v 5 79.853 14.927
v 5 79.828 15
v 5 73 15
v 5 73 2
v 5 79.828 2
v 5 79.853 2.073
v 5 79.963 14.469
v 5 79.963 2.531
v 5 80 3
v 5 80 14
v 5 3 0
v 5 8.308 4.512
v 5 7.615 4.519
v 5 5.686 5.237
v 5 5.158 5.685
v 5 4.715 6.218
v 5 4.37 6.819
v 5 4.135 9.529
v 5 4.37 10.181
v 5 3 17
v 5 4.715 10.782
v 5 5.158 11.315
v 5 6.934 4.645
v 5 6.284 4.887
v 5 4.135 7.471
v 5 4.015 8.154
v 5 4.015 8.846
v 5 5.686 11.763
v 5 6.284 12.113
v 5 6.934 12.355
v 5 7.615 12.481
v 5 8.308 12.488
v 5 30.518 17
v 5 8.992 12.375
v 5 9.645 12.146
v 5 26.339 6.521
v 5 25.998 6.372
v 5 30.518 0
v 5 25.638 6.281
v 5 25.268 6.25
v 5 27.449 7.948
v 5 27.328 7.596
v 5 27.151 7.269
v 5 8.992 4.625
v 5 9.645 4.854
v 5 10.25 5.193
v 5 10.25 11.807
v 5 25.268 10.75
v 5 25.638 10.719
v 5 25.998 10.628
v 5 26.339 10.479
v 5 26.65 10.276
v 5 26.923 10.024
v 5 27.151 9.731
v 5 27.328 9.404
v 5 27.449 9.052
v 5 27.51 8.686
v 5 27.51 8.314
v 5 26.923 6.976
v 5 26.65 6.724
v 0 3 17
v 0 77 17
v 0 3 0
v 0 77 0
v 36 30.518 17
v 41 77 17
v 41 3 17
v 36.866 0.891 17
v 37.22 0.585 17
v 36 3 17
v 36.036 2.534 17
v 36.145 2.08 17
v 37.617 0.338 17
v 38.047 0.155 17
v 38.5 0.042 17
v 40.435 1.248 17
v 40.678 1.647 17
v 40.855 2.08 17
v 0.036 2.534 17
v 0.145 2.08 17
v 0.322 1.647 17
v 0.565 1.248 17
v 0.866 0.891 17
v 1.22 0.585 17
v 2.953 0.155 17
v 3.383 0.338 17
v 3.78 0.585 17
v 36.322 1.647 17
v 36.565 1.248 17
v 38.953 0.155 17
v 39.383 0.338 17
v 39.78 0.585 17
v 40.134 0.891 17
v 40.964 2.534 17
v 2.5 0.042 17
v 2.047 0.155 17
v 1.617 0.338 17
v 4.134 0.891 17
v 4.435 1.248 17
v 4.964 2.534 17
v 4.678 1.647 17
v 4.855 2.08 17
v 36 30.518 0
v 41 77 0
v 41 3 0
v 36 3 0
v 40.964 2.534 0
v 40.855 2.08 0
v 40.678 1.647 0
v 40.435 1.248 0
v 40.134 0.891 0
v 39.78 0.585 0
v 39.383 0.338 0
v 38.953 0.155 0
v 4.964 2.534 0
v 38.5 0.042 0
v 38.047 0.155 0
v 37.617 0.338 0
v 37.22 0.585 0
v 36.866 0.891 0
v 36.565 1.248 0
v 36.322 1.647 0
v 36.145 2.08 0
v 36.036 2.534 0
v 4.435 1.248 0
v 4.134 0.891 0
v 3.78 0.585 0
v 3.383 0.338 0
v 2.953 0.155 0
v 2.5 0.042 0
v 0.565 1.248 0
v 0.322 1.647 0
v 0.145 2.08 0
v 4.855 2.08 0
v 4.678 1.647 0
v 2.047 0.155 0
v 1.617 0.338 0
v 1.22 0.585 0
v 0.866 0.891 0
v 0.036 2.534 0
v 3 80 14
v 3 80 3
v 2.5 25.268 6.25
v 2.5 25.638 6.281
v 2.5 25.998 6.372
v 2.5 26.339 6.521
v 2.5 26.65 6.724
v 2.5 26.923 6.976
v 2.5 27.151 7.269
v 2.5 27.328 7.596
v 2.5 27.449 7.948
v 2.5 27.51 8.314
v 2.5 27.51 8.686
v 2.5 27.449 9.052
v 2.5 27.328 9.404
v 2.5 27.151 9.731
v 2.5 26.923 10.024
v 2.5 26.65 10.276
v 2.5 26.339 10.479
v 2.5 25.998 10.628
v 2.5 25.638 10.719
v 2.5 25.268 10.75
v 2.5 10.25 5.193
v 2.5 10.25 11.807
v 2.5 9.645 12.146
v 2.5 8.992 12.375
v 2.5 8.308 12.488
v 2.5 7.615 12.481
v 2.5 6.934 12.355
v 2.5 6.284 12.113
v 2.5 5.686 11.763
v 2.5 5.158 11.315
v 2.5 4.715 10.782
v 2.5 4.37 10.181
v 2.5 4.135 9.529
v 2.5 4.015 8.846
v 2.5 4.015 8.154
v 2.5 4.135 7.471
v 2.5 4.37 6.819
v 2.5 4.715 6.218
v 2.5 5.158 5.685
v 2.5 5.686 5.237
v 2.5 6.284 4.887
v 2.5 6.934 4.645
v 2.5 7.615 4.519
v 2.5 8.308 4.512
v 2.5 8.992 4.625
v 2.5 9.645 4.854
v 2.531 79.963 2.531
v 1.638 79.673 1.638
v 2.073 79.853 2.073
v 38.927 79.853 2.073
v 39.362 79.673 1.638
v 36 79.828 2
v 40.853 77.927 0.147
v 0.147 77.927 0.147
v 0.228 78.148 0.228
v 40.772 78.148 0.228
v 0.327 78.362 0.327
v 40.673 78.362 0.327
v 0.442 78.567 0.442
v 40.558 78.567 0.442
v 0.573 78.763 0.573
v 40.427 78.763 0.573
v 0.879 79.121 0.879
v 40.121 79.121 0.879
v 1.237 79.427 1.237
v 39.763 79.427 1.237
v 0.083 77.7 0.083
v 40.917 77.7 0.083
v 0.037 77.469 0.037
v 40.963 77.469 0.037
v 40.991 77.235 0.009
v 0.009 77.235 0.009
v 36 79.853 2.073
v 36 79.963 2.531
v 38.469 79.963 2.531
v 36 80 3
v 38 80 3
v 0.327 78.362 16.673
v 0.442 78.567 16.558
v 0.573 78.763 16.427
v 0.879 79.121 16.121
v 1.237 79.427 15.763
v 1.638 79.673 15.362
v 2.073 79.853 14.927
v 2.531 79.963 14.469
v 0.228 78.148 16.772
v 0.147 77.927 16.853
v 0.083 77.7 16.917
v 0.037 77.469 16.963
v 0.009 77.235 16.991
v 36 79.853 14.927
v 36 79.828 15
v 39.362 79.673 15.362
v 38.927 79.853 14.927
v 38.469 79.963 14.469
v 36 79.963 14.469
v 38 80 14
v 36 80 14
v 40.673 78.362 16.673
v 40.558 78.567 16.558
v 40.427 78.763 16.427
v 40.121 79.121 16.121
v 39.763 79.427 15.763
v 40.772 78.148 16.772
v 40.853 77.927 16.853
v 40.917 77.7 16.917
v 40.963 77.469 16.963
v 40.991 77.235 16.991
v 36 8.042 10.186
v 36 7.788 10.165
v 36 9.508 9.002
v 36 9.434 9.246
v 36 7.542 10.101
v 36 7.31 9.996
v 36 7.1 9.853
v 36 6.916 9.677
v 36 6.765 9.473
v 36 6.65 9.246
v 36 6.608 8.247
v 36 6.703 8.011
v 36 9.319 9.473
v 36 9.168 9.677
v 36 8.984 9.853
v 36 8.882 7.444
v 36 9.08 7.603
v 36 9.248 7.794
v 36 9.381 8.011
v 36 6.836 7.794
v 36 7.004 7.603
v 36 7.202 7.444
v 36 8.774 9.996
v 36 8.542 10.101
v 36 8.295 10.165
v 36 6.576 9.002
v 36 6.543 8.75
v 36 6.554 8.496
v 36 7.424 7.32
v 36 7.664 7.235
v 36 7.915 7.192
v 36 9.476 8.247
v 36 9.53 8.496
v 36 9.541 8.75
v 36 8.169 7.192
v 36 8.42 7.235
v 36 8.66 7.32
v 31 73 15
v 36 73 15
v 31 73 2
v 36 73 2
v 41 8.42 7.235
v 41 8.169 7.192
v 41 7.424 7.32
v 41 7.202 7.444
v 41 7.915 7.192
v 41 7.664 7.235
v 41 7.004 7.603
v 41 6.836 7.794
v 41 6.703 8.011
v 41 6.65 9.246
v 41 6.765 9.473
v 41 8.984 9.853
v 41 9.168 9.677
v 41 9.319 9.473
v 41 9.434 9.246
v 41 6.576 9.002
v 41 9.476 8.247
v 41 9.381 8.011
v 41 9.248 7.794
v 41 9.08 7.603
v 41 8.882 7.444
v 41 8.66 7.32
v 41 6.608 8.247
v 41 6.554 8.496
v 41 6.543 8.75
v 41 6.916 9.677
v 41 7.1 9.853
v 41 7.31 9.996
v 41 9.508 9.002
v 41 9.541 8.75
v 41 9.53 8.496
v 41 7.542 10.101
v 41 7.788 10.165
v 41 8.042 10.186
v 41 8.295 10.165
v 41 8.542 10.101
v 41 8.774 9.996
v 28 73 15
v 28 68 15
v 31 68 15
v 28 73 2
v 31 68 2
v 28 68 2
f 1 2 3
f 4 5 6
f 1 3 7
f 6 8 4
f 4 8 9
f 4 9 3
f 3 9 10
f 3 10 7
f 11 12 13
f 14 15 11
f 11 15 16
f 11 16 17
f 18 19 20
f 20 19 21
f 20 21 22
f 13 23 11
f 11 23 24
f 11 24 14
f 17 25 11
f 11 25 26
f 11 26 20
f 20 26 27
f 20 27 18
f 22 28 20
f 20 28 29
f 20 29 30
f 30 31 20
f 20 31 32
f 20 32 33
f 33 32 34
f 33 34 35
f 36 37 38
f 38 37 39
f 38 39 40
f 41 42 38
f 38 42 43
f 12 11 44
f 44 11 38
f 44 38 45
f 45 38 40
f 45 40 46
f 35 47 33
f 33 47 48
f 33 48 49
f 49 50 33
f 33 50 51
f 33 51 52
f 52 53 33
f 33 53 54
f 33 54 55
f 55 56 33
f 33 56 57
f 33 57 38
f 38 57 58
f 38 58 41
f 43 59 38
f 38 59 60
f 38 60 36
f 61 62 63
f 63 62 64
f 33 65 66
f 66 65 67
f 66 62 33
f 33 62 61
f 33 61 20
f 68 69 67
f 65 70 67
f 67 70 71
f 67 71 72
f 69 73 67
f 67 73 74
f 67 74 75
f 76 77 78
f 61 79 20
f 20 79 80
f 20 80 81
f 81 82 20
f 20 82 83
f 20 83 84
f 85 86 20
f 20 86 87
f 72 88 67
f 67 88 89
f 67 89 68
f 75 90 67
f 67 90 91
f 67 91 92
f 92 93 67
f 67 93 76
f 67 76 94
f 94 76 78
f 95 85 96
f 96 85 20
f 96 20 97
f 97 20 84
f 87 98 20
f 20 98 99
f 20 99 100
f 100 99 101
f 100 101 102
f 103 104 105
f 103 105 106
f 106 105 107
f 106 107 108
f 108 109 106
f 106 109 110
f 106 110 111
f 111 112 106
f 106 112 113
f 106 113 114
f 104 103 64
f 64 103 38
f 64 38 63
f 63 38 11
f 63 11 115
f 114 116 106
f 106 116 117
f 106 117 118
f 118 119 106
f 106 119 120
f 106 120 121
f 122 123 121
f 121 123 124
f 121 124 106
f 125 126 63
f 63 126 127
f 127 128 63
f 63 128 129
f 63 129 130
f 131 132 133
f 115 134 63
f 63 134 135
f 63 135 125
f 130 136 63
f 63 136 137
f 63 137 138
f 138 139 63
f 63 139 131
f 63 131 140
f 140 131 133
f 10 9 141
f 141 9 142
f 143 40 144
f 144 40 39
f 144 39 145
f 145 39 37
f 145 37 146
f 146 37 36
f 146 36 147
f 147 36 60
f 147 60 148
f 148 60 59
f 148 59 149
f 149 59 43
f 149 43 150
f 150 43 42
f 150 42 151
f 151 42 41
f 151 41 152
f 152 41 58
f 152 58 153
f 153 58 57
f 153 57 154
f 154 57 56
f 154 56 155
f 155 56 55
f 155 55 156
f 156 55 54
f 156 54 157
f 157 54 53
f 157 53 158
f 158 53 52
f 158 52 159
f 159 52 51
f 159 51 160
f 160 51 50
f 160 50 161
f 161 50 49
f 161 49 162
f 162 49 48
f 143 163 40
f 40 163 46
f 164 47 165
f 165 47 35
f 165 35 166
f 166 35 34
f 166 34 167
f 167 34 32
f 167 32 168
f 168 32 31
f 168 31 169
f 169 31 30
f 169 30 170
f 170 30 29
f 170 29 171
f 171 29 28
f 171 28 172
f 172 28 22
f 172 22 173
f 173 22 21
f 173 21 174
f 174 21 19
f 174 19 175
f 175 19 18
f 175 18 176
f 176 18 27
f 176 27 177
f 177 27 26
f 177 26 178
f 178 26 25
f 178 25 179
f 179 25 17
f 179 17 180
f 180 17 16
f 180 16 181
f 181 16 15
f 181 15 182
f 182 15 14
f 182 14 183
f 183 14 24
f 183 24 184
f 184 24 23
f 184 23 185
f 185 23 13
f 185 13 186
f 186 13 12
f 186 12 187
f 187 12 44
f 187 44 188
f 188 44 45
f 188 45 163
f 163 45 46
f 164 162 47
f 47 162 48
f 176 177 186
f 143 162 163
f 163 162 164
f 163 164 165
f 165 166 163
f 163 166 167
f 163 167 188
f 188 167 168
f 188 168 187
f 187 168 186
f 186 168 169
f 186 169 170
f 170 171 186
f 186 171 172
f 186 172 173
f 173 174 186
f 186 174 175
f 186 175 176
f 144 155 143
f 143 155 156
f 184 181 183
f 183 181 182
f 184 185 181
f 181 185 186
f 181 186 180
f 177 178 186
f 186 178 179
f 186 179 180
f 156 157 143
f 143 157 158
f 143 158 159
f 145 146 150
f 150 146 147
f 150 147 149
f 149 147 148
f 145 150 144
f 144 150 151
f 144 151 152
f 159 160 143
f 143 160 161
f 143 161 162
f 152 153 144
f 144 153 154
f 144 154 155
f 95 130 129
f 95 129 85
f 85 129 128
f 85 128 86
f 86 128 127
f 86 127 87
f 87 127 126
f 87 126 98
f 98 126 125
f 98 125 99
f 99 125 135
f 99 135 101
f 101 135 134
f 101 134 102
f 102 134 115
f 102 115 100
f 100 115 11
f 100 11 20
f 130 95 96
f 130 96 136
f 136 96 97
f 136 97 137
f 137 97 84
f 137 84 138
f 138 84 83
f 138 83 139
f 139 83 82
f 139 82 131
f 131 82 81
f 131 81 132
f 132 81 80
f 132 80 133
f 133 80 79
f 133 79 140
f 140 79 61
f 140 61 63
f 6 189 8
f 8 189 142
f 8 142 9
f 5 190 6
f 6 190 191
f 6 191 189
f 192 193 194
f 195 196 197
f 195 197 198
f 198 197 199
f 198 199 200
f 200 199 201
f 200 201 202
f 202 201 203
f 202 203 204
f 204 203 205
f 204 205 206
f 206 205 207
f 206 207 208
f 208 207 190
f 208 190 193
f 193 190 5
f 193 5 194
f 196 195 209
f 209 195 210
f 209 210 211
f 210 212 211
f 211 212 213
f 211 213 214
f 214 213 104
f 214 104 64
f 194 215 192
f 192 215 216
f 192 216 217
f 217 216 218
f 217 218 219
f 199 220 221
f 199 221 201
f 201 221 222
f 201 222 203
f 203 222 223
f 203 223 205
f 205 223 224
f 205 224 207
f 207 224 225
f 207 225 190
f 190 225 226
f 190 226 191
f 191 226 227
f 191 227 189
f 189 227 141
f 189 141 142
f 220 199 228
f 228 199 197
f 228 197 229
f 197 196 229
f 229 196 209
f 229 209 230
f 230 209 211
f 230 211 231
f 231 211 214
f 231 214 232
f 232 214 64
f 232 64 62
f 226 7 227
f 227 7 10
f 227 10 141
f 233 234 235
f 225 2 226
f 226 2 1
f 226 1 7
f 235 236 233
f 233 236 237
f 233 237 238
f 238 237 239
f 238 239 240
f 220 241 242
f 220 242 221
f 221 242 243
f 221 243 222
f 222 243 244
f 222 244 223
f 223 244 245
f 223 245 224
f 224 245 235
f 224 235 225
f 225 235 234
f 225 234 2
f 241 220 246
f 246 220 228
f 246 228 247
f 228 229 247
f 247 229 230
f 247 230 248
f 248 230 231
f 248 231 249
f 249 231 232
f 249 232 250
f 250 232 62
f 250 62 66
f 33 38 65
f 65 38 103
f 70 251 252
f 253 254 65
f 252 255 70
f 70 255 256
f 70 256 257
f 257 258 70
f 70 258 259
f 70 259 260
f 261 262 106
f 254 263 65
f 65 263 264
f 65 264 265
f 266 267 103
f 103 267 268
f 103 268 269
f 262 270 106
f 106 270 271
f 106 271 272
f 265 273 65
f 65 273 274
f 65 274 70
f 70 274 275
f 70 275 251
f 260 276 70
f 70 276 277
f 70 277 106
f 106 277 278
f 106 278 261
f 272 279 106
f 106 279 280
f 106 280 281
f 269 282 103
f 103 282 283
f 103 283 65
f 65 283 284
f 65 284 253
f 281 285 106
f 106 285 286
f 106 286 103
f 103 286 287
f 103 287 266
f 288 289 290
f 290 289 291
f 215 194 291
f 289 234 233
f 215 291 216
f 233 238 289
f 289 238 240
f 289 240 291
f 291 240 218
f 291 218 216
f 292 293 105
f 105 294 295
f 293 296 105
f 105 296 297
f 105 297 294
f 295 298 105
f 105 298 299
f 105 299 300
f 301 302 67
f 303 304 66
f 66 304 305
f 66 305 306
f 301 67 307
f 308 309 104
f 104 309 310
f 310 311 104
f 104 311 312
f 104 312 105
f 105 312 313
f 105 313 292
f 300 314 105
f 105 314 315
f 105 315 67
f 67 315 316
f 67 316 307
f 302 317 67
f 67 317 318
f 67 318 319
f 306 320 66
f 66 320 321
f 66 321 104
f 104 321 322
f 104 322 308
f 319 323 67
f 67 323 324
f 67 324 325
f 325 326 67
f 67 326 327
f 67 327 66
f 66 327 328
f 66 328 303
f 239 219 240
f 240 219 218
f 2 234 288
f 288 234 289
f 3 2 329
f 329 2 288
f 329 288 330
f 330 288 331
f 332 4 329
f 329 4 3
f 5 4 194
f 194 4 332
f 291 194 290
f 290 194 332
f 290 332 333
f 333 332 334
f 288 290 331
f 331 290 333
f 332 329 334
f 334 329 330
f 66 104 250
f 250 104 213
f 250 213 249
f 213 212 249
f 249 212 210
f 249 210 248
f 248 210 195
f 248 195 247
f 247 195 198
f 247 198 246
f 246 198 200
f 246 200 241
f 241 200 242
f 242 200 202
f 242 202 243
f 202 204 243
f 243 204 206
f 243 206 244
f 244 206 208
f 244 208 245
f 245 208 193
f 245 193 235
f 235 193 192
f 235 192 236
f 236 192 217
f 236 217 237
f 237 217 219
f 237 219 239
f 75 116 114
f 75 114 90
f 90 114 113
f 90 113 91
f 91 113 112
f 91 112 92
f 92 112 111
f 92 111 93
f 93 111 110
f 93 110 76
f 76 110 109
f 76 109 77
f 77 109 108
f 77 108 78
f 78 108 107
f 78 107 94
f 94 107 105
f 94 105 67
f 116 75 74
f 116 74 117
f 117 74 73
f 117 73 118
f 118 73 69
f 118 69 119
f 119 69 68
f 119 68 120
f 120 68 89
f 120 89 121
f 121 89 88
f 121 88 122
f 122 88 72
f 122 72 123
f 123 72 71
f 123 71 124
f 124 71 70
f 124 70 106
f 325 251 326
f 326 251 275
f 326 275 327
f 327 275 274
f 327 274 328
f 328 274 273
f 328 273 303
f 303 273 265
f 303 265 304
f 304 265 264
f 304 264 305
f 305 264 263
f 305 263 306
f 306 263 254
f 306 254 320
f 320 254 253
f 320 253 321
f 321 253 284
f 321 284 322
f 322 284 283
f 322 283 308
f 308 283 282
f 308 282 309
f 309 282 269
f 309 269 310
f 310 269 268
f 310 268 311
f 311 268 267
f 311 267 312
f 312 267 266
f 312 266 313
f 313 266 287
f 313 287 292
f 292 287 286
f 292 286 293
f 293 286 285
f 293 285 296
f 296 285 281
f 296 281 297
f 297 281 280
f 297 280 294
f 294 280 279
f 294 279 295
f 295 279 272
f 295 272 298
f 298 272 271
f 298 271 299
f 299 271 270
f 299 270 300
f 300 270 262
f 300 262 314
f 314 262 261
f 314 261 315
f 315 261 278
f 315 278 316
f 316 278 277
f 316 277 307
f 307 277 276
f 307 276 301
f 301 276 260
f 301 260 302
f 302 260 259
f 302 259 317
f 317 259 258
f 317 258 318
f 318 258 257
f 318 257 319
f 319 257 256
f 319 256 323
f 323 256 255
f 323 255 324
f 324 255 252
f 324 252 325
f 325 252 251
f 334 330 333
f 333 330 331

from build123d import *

# Parameters (mm, degrees)
SKETCH1_W             = 5
SKETCH1_H             = 17
BOSS_EXTRUDE1_DEPTH   = 80
BOSS_EXTRUDE1_2_DEPTH = 80
CUT_EXTRUDE1_DEPTH    = 2.5
BOSS_EXTRUDE2_REACH   = 91.359
SKETCH5_W             = 3
SKETCH5_H             = 13
CUT_EXTRUDE2_DEPTH    = 5
FILLET1_R             = 3
FILLET2_R             = 3
SKETCH6_R             = 1.5
CUT_EXTRUDE3_DEPTH    = 90.358827208
BOSS_EXTRUDE3_REACH   = 91.359
SKETCH7_W             = 17
SKETCH7_H             = 37.482200285


with BuildPart() as part:
    # Sketch1 → Boss-Extrude1 (new body)
    with BuildSketch(Plane(origin=(0, 0, 0), x_dir=(1, 0, 0), z_dir=(0, 1, 0))):
        with Locations((2.5, -8.5)):
            Rectangle(SKETCH1_W, SKETCH1_H)
    extrude(amount=BOSS_EXTRUDE1_DEPTH)

    # Sketch2 → Cut-Extrude1 (cut)
    with BuildSketch(Plane(origin=(5, 0, 0), x_dir=(0, 0, -1), z_dir=(1, 0, 0))):
        with BuildLine():
            Line((-10.75, 25.267799715), (-11.807189139, 10.25))
            ThreePointArc((-11.807189139, 10.25), (-8.5, 12), (-5.192810861, 10.25))
            Line((-5.192810861, 10.25), (-6.25, 25.267799715))
            ThreePointArc((-6.25, 25.267799715), (-8.5, 27.517799715), (-10.75, 25.267799715))
        make_face()
        with BuildLine():
            ThreePointArc((-5.192810861, 10.25), (-8.5, 12), (-11.807189139, 10.25))
            Line((-11.807189139, 10.25), (-11.807189139, 5.75))
            ThreePointArc((-11.807189139, 5.75), (-8.5, 4), (-5.192810861, 5.75))
            Line((-5.192810861, 5.75), (-5.192810861, 10.25))
        make_face()
        with BuildLine():
            Line((-11.807189139, 5.75), (-11.807189139, 10.25))
            ThreePointArc((-11.807189139, 10.25), (-12.5, 8), (-11.807189139, 5.75))
        make_face()
        with BuildLine():
            ThreePointArc((-4.5, 8), (-4.677124344, 9.177124344), (-5.192810861, 10.25))
            Line((-5.192810861, 10.25), (-5.192810861, 5.75))
            ThreePointArc((-5.192810861, 5.75), (-4.677124344, 6.822875656), (-4.5, 8))
        make_face()
    extrude(amount=-CUT_EXTRUDE1_DEPTH, mode=Mode.SUBTRACT)


with BuildPart() as body_2:
    # Sketch1 → Boss-Extrude1 2 (new body)
    with BuildSketch(Plane(origin=(0, 0, 0), x_dir=(1, 0, 0), z_dir=(0, 1, 0))):
        with Locations((38.5, -8.5)):
            Rectangle(SKETCH1_W, SKETCH1_H)
    extrude(amount=BOSS_EXTRUDE1_2_DEPTH)


    # Sketch4 → Boss-Extrude2 (add, up to next)
    with BuildSketch(Plane.ZY.offset(-36), mode=Mode.PRIVATE) as boss_extrude2_sk1:
        Polygon((2, 73), (15, 73), (15, 80), (17, 80), (17, 72), (17, 68), (0, 68), (0, 72), (0, 80), (2, 80), align=None)
    boss_extrude2_tool1 = extrude(boss_extrude2_sk1.sketch, amount=BOSS_EXTRUDE2_REACH, mode=Mode.PRIVATE) - part.part
    add(boss_extrude2_tool1.solids().sort_by_distance((36, 71.986726, 8.5))[0])

    # Sketch5 → Cut-Extrude2 (cut)
    with BuildSketch(Plane(origin=(0, 73, 0), x_dir=(1, 0, 0), z_dir=(0, 1, 0))):
        with Locations((29.5, -8.5)):
            Rectangle(SKETCH5_W, SKETCH5_H)
    extrude(amount=-CUT_EXTRUDE2_DEPTH, mode=Mode.SUBTRACT)

    # Fillet1
    # the kernel refuses this fillet: 3 mm, written as the material it takes off along each edge
    with BuildSketch(Plane(origin=(36, 0, 24.5), x_dir=(0, 1, 0), z_dir=(0, 0, -1)), Plane(origin=(41, 0, -7.5), x_dir=(0, 1, 0), z_dir=(0, 0, 1)), Plane(origin=(41, 80, -7.5), x_dir=(-1, 0, 0), z_dir=(0, 0, 1))) as fillet1_piece_1:
        with BuildLine():
            CenterArc((FILLET1_R, FILLET1_R), FILLET1_R, 180, 90)
            Line((0, FILLET1_R), (0, 0))
            Line((0, 0), (FILLET1_R, 0))
        make_face()
    extrude(amount=32, mode=Mode.SUBTRACT)
    with BuildSketch(Plane(origin=(-2.5, 80, 17), x_dir=(0, 0, -1), z_dir=(1, 0, 0)), Plane(origin=(48.5, 80, 0), x_dir=(0, 0, 1), z_dir=(-1, 0, 0))) as fillet1_piece_2:
        with BuildLine():
            CenterArc((FILLET1_R, -FILLET1_R), FILLET1_R, 90, 90)
            Line((0, -FILLET1_R), (0, 0))
            Line((0, 0), (FILLET1_R, 0))
        make_face()
    extrude(amount=51, mode=Mode.SUBTRACT)

    # Sketch6 → Cut-Extrude3 (cut, through all)
    with BuildSketch(Plane.ZY.offset(-36)):
        with Locations((8.686376561, 8.041960108)):
            Circle(SKETCH6_R)
    extrude(amount=-CUT_EXTRUDE3_DEPTH, mode=Mode.SUBTRACT)

    # Sketch7 → Boss-Extrude3 (add, up to next)
    with BuildSketch(Plane(origin=(5, 0, 0), x_dir=(0, 0, -1), z_dir=(1, 0, 0)), mode=Mode.PRIVATE) as boss_extrude3_sk1:
        with Locations((-8.5, 49.258899857)):
            Rectangle(SKETCH7_W, SKETCH7_H)
    boss_extrude3_tool1 = extrude(boss_extrude3_sk1.sketch, amount=BOSS_EXTRUDE3_REACH, mode=Mode.PRIVATE) - body_2.part


with BuildPart() as part_1:
    add(part.part)

    # Fillet2
    # the kernel refuses this fillet: 3 mm, written as the material it takes off along each edge
    with BuildSketch(Plane(origin=(0, 0, 24.5), x_dir=(0, 1, 0), z_dir=(0, 0, -1)), Plane(origin=(5, 0, -7.5), x_dir=(0, 1, 0), z_dir=(0, 0, 1))) as fillet2_piece_1:
        with BuildLine():
            CenterArc((FILLET2_R, FILLET2_R), FILLET2_R, 180, 90)
            Line((0, FILLET2_R), (0, 0))
            Line((0, 0), (FILLET2_R, 0))
        make_face()
    extrude(amount=32, mode=Mode.SUBTRACT)
    with BuildSketch(Plane(origin=(12.5, 80, 17), x_dir=(0, 0, -1), z_dir=(-1, 0, 0))) as fillet2_piece_2:
        with BuildLine():
            CenterArc((FILLET2_R, FILLET2_R), FILLET2_R, 180, 90)
            Line((0, FILLET2_R), (0, 0))
            Line((0, 0), (FILLET2_R, 0))
        make_face()
    extrude(amount=20, mode=Mode.SUBTRACT)
    with BuildSketch(Plane(origin=(0, 80, 24.5), x_dir=(0, -1, 0), z_dir=(0, 0, -1))) as fillet2_piece_3:
        with BuildLine():
            CenterArc((FILLET2_R, -FILLET2_R), FILLET2_R, 90, 90)
            Line((0, -FILLET2_R), (0, 0))
            Line((0, 0), (FILLET2_R, 0))
        make_face()
    extrude(amount=32, mode=Mode.SUBTRACT)
    with BuildSketch(Plane(origin=(-7.5, 80, 0), x_dir=(0, -1, 0), z_dir=(1, 0, 0))) as fillet2_piece_4:
        with BuildLine():
            CenterArc((FILLET2_R, -FILLET2_R), FILLET2_R, 90, 90)
            Line((0, -FILLET2_R), (0, 0))
            Line((0, 0), (FILLET2_R, 0))
        make_face()
    extrude(amount=20, mode=Mode.SUBTRACT)


with BuildPart() as body_2_1:
    add(body_2.part)

    add(part_1.part)  # Boss-Extrude3 merges part
    add(boss_extrude3_tool1.solids().sort_by_distance((5, 49.2589, 8.5))[0])


solid = body_2_1.part
